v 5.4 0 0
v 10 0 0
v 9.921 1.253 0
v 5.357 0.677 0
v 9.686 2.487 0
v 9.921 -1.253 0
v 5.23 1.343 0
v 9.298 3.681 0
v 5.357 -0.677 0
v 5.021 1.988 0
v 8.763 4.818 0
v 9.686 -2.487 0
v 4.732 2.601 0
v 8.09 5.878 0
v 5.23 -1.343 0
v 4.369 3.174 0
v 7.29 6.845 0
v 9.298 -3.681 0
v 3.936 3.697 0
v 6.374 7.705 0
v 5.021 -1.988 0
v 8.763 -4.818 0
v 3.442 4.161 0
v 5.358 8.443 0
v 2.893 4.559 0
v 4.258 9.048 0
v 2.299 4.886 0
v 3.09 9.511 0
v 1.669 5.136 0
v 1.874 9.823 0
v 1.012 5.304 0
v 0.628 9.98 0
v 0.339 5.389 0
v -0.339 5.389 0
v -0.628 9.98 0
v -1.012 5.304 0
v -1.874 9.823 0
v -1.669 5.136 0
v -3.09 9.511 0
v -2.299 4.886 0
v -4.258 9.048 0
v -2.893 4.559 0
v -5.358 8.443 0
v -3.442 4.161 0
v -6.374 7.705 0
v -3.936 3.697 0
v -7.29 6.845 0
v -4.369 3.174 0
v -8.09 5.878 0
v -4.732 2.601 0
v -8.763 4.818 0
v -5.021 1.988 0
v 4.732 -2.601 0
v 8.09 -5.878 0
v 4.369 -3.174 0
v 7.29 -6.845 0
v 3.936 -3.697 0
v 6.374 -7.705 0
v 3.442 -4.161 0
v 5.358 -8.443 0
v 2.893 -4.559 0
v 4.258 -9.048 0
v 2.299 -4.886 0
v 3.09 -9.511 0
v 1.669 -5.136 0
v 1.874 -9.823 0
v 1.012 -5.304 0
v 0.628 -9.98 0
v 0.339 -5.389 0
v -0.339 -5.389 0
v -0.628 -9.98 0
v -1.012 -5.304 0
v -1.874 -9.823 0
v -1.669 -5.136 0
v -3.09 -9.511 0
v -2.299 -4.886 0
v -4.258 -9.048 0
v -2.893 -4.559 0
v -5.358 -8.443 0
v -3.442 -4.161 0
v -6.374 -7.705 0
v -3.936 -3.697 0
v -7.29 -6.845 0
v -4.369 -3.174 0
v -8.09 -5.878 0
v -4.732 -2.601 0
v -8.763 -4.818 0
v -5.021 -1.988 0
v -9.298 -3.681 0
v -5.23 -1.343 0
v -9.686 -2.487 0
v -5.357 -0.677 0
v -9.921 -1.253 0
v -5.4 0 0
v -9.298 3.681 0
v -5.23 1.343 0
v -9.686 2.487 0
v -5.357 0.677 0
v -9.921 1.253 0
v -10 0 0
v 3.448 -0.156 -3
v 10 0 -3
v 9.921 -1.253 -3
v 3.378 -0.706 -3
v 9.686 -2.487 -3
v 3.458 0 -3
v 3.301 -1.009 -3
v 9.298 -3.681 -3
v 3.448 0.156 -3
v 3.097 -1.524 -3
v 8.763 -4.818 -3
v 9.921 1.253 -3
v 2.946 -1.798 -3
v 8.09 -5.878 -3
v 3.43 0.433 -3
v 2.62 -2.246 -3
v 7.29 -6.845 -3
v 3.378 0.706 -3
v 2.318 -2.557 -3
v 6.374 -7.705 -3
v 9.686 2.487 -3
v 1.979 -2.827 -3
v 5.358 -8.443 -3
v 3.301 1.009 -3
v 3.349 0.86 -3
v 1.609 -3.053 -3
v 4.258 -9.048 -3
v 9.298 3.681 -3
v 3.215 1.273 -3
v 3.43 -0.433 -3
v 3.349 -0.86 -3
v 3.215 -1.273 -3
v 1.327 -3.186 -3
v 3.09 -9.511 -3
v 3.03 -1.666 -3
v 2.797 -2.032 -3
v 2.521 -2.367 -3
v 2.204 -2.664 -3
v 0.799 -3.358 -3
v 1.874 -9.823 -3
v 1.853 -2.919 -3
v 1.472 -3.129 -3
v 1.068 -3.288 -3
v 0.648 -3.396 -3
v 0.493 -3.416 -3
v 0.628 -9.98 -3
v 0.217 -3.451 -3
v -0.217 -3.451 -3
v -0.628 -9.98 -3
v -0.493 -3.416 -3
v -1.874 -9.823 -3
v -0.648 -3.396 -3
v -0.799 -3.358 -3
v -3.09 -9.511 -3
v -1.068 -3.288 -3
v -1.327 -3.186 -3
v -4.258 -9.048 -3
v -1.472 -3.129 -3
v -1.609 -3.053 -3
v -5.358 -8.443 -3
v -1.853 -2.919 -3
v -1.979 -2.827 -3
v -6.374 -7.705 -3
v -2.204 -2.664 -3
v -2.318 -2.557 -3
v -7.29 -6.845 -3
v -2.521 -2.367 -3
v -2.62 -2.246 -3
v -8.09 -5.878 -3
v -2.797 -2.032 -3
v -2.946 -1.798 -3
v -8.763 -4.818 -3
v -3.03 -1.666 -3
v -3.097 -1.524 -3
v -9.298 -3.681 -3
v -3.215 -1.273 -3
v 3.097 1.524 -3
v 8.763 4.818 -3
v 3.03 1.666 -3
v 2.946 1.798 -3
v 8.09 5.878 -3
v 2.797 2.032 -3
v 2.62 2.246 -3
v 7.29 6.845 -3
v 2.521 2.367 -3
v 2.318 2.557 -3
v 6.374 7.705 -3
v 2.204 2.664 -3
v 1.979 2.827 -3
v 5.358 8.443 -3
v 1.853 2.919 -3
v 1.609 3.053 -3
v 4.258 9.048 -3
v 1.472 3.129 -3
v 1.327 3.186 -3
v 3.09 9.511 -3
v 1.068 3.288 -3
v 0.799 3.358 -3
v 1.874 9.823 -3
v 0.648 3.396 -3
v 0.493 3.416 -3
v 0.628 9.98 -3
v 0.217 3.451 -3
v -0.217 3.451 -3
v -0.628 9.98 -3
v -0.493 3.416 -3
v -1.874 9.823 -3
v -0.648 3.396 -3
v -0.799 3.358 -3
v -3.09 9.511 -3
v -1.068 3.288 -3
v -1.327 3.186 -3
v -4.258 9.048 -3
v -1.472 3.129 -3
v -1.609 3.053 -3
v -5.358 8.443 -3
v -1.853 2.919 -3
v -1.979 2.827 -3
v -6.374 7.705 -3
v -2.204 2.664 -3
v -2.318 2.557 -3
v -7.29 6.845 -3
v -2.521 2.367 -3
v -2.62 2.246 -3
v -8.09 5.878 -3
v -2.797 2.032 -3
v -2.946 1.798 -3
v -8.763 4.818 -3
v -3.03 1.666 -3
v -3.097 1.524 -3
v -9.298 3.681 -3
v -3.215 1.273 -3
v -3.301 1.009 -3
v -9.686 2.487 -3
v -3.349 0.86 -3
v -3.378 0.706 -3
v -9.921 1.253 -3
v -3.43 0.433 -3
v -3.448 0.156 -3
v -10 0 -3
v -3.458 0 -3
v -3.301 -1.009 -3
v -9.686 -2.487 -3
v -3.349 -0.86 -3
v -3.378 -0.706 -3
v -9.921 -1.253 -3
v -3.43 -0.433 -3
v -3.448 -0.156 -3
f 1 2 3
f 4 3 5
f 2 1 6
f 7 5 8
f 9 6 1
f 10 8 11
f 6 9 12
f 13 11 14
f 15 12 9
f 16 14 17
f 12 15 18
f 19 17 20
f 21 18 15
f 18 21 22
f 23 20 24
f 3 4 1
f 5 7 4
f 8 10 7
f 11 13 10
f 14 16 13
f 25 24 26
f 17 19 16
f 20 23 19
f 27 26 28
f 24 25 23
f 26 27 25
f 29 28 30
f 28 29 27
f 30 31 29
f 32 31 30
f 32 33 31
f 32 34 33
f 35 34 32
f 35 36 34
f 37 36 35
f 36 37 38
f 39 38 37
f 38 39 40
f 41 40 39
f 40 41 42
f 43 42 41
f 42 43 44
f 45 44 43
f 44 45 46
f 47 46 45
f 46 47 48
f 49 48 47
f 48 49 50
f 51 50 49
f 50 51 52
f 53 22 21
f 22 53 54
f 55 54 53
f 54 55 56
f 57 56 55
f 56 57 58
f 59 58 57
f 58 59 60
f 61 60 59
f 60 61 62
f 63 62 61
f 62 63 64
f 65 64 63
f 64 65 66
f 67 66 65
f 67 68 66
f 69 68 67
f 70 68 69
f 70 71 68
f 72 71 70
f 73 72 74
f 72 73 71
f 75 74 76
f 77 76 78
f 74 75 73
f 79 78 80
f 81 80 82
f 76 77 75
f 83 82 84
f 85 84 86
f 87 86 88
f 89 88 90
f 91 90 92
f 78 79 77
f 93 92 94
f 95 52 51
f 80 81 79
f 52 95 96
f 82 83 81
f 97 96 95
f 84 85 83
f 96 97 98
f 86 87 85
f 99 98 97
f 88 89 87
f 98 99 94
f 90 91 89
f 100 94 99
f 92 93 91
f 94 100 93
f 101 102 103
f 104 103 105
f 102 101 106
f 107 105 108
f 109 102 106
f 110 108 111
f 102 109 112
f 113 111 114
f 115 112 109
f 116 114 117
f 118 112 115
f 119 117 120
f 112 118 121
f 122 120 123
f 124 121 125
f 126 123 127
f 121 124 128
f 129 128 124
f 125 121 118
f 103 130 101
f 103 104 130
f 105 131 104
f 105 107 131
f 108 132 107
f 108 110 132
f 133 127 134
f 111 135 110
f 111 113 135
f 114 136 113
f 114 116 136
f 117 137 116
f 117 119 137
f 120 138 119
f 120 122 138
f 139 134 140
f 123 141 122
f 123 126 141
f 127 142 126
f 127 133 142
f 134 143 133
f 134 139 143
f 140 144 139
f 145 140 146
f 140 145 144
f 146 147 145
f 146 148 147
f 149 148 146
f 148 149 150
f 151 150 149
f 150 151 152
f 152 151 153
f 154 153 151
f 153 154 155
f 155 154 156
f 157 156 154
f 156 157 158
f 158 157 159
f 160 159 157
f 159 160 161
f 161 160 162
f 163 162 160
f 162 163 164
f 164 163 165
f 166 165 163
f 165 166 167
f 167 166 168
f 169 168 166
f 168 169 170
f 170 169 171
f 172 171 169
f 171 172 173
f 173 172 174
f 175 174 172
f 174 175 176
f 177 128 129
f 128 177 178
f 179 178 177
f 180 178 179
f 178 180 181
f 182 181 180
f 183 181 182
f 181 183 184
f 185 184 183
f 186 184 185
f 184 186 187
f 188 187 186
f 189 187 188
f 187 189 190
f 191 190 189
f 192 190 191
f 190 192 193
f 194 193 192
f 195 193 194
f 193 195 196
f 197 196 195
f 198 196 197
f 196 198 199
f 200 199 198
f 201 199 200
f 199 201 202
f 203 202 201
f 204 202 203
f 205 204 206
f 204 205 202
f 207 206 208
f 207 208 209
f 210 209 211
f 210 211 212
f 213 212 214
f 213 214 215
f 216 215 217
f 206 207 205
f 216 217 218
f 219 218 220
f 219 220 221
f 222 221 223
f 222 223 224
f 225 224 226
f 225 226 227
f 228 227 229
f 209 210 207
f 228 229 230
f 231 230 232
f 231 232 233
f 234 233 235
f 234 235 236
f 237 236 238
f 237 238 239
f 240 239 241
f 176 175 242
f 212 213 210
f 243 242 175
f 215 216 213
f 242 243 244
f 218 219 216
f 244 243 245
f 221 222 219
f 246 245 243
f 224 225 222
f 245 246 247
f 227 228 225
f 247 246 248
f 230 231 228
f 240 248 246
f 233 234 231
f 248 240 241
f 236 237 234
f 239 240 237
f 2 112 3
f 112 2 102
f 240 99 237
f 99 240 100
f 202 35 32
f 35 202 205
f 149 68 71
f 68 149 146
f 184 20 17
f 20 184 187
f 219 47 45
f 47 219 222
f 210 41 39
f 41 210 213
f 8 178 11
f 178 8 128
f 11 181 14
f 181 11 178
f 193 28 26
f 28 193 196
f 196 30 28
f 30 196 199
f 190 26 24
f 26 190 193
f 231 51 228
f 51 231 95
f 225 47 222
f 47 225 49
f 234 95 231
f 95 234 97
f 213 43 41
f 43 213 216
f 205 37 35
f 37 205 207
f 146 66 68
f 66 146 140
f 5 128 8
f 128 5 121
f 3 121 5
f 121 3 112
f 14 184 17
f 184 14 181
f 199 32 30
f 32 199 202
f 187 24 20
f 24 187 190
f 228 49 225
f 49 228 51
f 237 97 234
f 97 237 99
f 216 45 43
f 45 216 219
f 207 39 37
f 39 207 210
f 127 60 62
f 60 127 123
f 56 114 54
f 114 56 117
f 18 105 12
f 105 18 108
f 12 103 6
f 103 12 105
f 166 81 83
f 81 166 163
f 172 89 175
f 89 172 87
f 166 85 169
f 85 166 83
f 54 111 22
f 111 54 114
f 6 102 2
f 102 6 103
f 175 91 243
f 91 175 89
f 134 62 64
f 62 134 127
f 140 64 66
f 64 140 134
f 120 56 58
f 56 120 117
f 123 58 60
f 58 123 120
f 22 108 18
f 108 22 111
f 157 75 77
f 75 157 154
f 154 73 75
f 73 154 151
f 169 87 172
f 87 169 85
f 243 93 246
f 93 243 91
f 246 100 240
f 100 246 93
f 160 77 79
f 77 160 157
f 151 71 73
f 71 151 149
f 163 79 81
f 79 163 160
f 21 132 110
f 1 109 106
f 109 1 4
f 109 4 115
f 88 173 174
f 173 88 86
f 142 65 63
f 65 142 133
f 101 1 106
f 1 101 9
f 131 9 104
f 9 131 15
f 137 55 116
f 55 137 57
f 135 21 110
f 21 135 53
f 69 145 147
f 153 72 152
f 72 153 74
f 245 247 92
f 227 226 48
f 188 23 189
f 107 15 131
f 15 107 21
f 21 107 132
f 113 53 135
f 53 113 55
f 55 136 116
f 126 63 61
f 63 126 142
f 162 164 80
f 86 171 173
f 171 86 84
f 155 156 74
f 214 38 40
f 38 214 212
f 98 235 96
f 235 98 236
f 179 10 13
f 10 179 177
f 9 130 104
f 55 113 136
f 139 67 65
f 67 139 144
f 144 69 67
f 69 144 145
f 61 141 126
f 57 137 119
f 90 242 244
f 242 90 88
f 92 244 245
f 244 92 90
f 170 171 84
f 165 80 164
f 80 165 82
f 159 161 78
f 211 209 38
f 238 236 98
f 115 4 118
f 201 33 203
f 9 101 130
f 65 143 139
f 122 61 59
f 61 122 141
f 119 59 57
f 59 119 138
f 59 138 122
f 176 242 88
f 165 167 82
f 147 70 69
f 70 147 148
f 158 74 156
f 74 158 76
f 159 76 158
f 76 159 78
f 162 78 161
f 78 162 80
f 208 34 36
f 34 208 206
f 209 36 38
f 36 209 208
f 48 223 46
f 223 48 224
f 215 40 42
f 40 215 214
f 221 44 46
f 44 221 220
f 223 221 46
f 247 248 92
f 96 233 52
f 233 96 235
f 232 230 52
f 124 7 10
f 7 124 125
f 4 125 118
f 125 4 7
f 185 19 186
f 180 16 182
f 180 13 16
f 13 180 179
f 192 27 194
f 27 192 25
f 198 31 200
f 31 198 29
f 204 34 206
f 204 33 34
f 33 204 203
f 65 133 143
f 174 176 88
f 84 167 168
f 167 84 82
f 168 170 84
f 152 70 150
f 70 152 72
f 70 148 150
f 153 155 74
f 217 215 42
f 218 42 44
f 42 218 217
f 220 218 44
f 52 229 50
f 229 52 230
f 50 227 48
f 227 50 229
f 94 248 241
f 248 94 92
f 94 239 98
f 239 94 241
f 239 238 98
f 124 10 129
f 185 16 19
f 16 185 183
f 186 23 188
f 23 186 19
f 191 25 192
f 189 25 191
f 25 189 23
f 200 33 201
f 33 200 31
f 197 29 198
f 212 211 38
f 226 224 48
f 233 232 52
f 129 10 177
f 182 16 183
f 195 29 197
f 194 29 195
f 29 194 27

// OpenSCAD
$fn = 50;


difference() {
	union() {
		translate(v = [0, 0, -3.0000000000]) {
			cylinder(h = 3, r = 7.0000000000);
		}
		translate(v = [0, 0, -3.0000000000]) {
			cylinder(h = 3, r = 10.0000000000);
		}
	}
	union() {
		translate(v = [0, 0, 0]) {
			rotate(a = [0, 0, 0]) {
				difference() {
					union() {
						#translate(v = [0, 0, -3.0000000000]) {
							cylinder(h = 3, r = 2.6000000000);
						}
						#translate(v = [0, 0, -3.9000000000]) {
							cylinder(h = 3.9000000000, r = 7.0000000000, r1 = 2.8750000000, r2 = 5.4000000000);
						}
						#translate(v = [0, 0, -3.0000000000]) {
							cylinder(h = 3, r = 2.8750000000);
						}
						#translate(v = [0, 0, -3.0000000000]) {
							cylinder(h = 3, r = 2.6000000000);
						}
					}
					union();
				}
			}
		}
	}
}
